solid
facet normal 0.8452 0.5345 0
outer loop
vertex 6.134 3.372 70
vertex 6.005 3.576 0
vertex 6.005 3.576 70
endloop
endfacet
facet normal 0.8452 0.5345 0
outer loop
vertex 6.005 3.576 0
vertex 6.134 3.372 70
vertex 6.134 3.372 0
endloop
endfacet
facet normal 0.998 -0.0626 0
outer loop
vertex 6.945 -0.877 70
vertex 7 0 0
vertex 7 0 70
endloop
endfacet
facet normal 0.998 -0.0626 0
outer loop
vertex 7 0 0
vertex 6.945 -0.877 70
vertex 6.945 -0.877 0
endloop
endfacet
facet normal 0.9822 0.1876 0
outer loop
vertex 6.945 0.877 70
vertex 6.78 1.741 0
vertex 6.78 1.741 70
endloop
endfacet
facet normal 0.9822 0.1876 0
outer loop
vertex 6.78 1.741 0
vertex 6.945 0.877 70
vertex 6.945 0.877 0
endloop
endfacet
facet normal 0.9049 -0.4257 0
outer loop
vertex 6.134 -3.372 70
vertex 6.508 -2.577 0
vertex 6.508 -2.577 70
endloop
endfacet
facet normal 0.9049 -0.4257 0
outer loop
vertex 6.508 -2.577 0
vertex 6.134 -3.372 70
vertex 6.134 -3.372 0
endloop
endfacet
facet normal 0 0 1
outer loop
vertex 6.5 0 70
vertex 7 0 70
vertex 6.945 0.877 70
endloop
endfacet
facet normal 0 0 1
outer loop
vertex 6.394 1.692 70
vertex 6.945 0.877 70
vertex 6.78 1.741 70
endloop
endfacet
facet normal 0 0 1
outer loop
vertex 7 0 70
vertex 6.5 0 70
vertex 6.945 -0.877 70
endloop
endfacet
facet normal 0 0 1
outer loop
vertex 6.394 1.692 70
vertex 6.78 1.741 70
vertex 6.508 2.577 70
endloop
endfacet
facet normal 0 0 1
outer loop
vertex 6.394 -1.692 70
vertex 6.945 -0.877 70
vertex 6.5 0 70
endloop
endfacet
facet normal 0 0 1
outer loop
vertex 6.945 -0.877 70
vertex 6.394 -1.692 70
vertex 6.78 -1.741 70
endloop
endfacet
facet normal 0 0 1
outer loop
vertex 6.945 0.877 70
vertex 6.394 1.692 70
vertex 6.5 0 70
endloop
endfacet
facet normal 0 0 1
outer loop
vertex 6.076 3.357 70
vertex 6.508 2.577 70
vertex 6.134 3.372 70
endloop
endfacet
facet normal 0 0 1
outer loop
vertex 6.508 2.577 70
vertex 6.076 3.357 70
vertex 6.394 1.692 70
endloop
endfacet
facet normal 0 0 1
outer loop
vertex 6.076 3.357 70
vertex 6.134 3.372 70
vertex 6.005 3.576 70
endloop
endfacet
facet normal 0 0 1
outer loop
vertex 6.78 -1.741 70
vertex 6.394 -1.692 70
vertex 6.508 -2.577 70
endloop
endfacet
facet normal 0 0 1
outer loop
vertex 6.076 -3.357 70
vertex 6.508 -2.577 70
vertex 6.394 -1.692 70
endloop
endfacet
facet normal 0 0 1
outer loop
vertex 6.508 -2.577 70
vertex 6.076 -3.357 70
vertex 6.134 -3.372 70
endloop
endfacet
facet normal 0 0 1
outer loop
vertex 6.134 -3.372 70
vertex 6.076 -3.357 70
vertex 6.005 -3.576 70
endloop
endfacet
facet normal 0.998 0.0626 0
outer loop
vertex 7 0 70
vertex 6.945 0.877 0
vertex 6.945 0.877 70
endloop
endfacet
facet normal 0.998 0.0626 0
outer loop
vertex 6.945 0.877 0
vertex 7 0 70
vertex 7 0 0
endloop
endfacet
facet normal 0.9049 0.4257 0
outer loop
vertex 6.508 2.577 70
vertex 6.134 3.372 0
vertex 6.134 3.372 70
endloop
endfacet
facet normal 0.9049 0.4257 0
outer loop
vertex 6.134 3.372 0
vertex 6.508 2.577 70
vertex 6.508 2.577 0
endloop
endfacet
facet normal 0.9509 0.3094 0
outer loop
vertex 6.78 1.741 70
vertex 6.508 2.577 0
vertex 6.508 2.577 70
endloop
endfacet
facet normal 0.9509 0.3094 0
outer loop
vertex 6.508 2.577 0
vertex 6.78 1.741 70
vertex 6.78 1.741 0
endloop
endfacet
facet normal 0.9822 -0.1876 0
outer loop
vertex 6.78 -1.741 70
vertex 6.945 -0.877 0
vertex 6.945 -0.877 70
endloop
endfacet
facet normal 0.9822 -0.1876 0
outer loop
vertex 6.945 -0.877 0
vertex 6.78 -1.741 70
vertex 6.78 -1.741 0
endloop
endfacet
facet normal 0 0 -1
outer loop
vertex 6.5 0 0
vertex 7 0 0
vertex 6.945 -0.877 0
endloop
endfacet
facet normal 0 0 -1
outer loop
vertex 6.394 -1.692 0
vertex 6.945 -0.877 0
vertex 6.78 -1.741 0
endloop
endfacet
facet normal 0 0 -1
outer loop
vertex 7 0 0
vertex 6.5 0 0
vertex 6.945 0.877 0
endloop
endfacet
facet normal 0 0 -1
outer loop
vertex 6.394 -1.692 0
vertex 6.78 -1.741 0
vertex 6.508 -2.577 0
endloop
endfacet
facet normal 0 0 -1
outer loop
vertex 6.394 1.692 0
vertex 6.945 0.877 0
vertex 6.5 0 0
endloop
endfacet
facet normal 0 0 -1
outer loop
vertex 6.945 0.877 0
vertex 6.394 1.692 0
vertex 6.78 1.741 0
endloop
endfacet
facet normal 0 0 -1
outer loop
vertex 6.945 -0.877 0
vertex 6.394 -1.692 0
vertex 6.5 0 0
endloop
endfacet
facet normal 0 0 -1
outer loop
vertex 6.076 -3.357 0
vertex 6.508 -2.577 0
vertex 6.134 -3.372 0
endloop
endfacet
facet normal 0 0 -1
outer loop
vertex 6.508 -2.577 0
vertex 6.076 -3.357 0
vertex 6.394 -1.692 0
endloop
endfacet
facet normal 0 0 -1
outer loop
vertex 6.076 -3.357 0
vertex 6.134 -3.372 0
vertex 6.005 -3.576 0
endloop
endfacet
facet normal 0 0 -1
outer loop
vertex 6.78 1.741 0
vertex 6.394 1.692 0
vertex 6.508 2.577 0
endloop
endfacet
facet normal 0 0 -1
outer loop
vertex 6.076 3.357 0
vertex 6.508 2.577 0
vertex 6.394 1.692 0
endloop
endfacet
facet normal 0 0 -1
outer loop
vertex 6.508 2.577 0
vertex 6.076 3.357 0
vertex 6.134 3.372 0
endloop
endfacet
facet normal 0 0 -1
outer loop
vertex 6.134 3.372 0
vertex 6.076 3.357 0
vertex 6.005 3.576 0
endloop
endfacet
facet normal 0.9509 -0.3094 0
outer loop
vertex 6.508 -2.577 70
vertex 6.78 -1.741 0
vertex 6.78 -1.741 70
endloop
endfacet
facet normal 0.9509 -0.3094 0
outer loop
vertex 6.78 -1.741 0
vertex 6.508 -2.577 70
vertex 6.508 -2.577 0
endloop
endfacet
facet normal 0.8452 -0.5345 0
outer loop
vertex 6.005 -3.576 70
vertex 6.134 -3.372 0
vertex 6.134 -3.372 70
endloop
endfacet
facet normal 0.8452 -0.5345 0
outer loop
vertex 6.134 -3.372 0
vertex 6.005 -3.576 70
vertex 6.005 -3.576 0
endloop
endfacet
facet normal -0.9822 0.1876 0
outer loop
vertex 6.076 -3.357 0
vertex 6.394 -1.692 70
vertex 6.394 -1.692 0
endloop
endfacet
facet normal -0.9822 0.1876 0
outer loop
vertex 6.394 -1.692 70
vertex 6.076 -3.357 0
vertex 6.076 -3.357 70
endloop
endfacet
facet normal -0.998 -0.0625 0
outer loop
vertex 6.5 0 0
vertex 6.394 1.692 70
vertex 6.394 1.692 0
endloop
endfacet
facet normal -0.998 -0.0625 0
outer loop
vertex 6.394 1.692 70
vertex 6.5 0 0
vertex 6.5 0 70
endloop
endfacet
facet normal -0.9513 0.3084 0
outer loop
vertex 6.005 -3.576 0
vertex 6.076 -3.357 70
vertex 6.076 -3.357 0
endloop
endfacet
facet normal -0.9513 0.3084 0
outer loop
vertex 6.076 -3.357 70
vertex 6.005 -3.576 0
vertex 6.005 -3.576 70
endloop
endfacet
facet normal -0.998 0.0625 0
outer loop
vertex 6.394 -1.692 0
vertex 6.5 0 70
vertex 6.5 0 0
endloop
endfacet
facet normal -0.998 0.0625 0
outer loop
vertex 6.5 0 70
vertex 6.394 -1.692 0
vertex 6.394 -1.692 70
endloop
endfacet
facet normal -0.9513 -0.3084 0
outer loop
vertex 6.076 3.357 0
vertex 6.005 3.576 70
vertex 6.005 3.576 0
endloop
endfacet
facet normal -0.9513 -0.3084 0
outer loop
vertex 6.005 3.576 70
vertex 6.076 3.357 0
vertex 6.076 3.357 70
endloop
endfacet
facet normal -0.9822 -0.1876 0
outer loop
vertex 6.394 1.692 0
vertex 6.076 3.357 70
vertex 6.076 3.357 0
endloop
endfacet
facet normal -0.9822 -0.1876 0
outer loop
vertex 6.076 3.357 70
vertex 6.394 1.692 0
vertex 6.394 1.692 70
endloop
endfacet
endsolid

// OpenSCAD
$fn = 50;


difference() {
	union() {
		cylinder(h = 70, r = 7.0000000000);
		translate(v = [-10.0000000000, 0, 0]) {
			cylinder(h = 70, r = 7.0000000000);
		}
	}
	union() {
		cylinder(h = 70, r = 3.2500000000);
		cylinder(h = 70, r = 1.8000000000);
		cylinder(h = 70, r = 1.8000000000);
		cylinder(h = 70, r = 1.8000000000);
		translate(v = [-14.5000000000, 0, 0]) {
			hull() {
				translate(v = [-3.7500000000, 0.0000000000, 0]) {
					cylinder(h = 70, r = 7.5000000000);
				}
				translate(v = [3.7500000000, 0.0000000000, 0]) {
					cylinder(h = 70, r = 7.5000000000);
				}
				translate(v = [-3.7500000000, -0.0000000000, 0]) {
					cylinder(h = 70, r = 7.5000000000);
				}
				translate(v = [3.7500000000, -0.0000000000, 0]) {
					cylinder(h = 70, r = 7.5000000000);
				}
			}
		}
		translate(v = [-7.0000000000, 0, 0.0000000000]) {
			cylinder(h = 70, r = 13.5000000000);
		}
	}
}
